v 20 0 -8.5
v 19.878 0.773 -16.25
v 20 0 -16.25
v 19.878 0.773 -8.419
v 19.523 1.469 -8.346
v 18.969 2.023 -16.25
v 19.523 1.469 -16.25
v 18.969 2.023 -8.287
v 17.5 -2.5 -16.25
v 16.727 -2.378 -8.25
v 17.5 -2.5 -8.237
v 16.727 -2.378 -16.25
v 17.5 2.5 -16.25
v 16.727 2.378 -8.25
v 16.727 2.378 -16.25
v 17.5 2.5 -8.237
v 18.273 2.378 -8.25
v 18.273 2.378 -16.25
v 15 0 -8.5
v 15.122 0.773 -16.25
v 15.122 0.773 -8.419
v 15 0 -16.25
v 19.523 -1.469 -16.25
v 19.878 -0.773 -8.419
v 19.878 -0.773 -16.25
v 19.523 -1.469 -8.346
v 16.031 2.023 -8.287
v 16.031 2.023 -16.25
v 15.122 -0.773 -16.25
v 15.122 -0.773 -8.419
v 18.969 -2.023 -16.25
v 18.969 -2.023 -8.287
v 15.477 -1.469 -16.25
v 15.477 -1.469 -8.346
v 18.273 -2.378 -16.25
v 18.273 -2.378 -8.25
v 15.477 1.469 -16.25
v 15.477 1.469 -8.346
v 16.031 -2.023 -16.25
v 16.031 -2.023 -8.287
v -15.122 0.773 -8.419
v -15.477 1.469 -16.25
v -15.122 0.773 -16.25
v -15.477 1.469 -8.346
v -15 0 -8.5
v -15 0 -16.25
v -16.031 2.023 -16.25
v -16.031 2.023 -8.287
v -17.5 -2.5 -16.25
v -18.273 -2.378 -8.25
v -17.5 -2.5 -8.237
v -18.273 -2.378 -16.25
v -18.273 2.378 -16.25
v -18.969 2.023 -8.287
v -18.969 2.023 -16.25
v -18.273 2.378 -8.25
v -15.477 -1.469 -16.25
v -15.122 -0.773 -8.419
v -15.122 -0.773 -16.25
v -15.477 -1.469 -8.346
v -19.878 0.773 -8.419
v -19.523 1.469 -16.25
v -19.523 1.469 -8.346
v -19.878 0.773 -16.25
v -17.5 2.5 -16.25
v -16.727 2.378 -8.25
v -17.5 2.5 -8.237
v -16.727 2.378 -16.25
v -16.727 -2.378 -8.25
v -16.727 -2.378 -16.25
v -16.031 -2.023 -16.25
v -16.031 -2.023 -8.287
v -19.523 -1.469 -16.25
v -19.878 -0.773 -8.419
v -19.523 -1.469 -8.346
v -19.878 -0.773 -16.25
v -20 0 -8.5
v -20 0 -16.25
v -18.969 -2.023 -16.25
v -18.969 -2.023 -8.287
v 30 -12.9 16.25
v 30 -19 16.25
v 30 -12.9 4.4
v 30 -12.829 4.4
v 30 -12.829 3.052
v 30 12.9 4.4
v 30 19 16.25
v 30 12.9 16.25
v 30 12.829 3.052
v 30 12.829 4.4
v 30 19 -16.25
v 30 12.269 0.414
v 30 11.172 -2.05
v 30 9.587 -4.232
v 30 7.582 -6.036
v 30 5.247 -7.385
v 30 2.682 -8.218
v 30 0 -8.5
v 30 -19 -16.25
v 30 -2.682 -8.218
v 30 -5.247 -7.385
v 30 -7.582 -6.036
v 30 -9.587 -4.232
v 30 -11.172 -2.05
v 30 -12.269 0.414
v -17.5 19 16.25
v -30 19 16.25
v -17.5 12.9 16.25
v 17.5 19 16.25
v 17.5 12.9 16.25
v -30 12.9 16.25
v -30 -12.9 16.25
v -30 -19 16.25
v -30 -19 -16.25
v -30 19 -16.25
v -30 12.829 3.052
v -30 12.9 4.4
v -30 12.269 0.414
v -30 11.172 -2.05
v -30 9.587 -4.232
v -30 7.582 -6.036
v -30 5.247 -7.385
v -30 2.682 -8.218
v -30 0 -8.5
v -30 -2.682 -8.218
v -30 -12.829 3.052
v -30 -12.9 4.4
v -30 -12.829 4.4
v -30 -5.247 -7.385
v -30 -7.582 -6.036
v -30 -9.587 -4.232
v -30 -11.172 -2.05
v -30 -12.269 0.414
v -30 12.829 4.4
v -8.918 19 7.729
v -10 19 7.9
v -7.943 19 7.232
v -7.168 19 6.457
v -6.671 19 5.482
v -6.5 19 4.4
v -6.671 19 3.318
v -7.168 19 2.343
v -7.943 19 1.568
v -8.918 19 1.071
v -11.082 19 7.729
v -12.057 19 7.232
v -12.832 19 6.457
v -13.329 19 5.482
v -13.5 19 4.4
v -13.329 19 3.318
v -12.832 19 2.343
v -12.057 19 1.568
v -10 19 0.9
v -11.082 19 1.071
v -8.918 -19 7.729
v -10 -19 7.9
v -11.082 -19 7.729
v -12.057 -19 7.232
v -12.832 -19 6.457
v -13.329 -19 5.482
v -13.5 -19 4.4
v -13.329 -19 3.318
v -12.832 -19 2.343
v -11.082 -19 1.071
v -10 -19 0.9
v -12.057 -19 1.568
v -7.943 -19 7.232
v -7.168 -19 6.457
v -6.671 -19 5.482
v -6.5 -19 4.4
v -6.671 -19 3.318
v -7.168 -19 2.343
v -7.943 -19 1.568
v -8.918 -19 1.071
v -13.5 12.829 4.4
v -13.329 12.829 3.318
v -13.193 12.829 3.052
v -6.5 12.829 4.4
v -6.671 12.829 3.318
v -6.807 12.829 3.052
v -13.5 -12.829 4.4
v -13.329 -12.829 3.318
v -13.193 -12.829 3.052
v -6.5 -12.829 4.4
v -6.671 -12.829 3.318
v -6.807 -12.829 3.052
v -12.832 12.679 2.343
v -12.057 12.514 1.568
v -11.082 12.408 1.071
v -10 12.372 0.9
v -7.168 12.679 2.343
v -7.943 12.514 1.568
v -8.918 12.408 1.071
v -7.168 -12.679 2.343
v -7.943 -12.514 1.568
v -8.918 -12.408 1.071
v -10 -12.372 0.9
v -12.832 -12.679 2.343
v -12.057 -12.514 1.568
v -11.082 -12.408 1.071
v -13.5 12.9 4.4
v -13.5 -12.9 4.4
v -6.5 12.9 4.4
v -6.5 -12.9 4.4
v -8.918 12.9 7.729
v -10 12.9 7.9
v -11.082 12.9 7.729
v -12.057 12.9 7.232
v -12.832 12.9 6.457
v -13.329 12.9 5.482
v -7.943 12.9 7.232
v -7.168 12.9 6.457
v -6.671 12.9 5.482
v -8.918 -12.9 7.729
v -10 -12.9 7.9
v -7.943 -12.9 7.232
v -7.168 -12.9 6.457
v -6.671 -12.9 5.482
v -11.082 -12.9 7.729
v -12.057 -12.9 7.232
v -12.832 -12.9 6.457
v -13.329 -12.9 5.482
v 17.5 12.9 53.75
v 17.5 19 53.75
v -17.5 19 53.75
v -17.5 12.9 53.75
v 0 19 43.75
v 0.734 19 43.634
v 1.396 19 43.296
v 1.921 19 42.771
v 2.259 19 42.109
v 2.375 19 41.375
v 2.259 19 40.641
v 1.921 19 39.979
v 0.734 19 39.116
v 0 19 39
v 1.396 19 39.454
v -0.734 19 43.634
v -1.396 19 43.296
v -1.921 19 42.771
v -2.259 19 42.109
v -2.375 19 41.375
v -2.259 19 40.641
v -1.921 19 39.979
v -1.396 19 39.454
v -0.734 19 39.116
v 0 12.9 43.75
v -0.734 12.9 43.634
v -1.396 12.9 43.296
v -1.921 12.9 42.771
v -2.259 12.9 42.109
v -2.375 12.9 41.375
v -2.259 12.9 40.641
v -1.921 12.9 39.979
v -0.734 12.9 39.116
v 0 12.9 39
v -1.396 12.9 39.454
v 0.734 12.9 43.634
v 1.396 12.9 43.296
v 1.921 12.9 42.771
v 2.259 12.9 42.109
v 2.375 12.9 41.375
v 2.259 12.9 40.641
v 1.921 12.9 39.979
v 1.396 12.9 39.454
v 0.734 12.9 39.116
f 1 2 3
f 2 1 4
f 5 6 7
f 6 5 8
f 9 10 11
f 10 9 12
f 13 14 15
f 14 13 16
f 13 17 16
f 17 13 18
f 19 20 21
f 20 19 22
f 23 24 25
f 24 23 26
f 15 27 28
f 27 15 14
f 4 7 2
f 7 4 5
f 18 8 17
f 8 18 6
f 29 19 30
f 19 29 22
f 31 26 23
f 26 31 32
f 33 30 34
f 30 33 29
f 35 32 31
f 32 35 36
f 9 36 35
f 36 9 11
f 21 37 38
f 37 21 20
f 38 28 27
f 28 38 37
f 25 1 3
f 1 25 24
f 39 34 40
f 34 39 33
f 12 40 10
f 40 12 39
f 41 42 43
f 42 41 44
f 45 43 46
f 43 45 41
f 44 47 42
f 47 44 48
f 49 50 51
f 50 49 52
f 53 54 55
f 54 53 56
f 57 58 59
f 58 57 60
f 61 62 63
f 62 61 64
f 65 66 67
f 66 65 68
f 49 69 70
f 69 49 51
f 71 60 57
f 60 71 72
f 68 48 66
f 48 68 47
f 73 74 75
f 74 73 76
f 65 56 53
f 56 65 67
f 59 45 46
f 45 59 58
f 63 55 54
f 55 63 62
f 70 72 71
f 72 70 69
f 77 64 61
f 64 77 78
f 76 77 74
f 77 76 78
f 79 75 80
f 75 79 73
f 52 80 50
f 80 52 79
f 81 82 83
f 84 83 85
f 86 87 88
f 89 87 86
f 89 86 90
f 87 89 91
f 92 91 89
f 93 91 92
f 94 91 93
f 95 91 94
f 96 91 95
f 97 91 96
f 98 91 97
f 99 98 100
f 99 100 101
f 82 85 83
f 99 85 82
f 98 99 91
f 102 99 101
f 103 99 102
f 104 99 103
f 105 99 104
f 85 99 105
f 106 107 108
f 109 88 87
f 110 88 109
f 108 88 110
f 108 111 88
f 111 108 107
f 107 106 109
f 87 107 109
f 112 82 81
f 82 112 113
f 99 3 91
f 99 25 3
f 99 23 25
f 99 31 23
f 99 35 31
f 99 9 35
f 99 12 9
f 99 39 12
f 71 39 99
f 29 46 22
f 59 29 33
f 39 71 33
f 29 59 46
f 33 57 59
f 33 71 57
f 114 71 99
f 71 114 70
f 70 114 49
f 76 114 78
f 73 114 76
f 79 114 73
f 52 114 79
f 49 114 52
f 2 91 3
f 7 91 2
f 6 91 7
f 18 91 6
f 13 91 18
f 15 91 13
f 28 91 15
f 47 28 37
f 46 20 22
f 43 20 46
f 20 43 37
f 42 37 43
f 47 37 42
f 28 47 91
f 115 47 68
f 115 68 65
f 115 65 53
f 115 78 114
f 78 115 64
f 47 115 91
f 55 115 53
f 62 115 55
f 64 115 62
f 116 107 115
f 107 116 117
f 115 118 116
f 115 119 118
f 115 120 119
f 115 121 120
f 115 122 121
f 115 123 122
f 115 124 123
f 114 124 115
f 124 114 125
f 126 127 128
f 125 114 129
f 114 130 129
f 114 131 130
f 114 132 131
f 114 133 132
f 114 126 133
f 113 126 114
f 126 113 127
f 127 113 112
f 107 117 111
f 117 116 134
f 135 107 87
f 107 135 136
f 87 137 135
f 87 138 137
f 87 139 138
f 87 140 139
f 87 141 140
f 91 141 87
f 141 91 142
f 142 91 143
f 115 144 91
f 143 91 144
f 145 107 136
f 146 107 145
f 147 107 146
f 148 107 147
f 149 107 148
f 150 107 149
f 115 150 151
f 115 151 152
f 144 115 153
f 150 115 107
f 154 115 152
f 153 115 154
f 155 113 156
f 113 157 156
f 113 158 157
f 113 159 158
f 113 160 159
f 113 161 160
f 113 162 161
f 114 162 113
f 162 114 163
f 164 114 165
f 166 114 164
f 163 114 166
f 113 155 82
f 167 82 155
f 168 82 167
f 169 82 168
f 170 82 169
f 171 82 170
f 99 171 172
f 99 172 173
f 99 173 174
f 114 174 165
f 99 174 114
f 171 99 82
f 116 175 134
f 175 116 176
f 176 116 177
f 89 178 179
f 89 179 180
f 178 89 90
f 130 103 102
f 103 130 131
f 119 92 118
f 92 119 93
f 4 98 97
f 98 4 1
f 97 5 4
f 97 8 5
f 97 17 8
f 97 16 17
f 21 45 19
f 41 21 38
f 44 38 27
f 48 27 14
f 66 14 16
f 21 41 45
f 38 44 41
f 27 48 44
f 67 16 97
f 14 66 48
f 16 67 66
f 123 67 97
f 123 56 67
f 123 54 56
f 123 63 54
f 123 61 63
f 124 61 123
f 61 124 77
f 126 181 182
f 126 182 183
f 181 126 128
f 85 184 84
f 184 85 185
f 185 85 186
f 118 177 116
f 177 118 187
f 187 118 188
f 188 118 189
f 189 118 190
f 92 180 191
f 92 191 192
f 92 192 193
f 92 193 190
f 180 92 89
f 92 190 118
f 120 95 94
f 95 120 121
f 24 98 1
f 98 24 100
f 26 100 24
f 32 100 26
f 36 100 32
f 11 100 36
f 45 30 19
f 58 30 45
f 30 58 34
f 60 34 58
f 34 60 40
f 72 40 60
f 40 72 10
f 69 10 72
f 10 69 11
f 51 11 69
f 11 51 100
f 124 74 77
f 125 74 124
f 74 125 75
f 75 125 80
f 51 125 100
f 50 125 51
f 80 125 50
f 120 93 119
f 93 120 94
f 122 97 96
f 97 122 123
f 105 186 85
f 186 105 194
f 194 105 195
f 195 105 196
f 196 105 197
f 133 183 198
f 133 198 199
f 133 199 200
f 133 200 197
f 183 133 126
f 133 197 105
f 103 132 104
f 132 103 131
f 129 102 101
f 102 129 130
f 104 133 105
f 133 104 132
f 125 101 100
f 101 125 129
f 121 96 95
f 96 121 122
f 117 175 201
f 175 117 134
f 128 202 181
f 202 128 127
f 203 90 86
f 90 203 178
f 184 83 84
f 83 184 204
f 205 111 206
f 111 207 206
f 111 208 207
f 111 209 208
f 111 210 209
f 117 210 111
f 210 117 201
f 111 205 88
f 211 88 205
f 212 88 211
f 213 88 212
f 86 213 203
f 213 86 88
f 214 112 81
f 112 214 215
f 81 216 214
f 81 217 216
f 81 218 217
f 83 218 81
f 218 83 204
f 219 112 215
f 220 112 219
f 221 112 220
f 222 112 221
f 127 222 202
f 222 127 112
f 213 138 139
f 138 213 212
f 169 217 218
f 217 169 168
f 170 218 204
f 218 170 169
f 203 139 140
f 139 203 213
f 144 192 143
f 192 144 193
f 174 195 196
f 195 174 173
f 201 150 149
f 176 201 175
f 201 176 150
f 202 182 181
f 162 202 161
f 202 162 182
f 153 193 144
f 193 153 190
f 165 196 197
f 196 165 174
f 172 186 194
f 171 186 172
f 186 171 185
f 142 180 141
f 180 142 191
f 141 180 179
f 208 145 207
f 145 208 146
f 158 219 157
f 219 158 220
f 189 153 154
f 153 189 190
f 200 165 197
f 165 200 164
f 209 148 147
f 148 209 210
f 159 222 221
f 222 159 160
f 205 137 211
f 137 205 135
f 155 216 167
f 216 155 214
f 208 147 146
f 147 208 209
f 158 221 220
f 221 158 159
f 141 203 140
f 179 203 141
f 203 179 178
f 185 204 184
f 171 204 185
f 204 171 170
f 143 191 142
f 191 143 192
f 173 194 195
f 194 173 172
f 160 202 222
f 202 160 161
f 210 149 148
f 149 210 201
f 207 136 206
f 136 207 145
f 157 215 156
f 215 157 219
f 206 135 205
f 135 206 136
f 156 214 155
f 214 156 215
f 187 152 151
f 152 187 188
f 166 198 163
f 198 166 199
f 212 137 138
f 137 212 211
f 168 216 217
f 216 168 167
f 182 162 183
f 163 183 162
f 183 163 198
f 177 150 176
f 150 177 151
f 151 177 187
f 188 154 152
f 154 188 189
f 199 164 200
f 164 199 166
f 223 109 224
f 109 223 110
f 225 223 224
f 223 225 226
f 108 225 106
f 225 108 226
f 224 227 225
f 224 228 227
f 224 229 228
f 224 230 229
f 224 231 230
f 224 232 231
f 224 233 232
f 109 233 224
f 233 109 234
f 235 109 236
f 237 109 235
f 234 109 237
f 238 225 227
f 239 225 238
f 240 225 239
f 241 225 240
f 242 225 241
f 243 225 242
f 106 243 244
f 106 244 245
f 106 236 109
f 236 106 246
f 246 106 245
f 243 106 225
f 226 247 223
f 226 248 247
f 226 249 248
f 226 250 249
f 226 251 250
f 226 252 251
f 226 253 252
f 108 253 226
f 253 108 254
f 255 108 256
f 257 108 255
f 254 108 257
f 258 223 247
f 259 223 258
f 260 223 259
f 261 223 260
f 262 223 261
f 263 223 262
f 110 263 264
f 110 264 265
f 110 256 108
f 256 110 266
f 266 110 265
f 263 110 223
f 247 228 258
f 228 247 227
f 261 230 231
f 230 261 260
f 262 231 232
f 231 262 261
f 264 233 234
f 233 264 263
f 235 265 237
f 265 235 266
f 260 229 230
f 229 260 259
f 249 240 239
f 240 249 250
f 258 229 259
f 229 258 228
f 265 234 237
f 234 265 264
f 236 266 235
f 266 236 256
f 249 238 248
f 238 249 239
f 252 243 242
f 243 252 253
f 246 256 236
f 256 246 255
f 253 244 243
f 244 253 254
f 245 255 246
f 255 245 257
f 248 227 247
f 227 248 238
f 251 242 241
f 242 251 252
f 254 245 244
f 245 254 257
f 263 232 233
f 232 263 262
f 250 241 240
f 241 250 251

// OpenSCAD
nakladka_sz = 38; //31.4
nakladka_dl = 60;
nakladka_h = 32.5;
dno_grubosc = 7.75;

rama_sr = 25.8;

sruba_sr = 5;
sruba_od_dna = 15.35;
sruba_od_boku = 12.7;
sruby_odstep = 35;

mocowanie_h = 37.5; //35
mocowanie_sr1 = 10; // lub 12
mocowanie_gr = (nakladka_sz-rama_sr)/2;
mocowanie_dl = 35;

module sruba_dziura(sr){
    rotate([90,0,0]){
        cylinder(h=nakladka_sz+30, d=sr, center=true, $fn=20);
        
    }
}

module mocowanie(h, sr1, gr, dl, sr2){
    difference(){
    cube([dl, gr, h],center = true);
    
  
    translate([0,0,h/2-10-sr2/2]){
    rotate([90,0,0]){
    cylinder(gr+10, d=sr2, center=true, $fn=20);
    }
    }
    
    }
}

union(){
    difference(){
        cube([nakladka_dl, nakladka_sz, nakladka_h], center=true);
        
        translate([0,0,-nakladka_h/2+dno_grubosc+rama_sr/2]){
        rotate([0,90,0]){
            cylinder(h=nakladka_dl+30, d=rama_sr, center=true);
            
        }
        }
        
        translate([0,0,dno_grubosc+rama_sr/2]){
            cube([nakladka_dl+30, rama_sr, nakladka_h],center = true);
        }
        rotate([-90,0,0]){
        translate([sruby_odstep/2,0,0]){
            sruba_dziura(sruba_sr);
            
            translate([-sruby_odstep,0,0]){
               sruba_dziura(sruba_sr); 
            }}
            

            
        }
        translate([-nakladka_dl/2+20,0,-nakladka_h/2+dno_grubosc+rama_sr/2]){
            rotate([0,0,0]){
                sruba_dziura(7); 
            }
        }

        
    }

    translate([0,nakladka_sz/2-mocowanie_gr/2,nakladka_h/2+mocowanie_h/2]){
        mocowanie(mocowanie_h, mocowanie_sr1, mocowanie_gr, mocowanie_dl, 4.75);
    }

}
